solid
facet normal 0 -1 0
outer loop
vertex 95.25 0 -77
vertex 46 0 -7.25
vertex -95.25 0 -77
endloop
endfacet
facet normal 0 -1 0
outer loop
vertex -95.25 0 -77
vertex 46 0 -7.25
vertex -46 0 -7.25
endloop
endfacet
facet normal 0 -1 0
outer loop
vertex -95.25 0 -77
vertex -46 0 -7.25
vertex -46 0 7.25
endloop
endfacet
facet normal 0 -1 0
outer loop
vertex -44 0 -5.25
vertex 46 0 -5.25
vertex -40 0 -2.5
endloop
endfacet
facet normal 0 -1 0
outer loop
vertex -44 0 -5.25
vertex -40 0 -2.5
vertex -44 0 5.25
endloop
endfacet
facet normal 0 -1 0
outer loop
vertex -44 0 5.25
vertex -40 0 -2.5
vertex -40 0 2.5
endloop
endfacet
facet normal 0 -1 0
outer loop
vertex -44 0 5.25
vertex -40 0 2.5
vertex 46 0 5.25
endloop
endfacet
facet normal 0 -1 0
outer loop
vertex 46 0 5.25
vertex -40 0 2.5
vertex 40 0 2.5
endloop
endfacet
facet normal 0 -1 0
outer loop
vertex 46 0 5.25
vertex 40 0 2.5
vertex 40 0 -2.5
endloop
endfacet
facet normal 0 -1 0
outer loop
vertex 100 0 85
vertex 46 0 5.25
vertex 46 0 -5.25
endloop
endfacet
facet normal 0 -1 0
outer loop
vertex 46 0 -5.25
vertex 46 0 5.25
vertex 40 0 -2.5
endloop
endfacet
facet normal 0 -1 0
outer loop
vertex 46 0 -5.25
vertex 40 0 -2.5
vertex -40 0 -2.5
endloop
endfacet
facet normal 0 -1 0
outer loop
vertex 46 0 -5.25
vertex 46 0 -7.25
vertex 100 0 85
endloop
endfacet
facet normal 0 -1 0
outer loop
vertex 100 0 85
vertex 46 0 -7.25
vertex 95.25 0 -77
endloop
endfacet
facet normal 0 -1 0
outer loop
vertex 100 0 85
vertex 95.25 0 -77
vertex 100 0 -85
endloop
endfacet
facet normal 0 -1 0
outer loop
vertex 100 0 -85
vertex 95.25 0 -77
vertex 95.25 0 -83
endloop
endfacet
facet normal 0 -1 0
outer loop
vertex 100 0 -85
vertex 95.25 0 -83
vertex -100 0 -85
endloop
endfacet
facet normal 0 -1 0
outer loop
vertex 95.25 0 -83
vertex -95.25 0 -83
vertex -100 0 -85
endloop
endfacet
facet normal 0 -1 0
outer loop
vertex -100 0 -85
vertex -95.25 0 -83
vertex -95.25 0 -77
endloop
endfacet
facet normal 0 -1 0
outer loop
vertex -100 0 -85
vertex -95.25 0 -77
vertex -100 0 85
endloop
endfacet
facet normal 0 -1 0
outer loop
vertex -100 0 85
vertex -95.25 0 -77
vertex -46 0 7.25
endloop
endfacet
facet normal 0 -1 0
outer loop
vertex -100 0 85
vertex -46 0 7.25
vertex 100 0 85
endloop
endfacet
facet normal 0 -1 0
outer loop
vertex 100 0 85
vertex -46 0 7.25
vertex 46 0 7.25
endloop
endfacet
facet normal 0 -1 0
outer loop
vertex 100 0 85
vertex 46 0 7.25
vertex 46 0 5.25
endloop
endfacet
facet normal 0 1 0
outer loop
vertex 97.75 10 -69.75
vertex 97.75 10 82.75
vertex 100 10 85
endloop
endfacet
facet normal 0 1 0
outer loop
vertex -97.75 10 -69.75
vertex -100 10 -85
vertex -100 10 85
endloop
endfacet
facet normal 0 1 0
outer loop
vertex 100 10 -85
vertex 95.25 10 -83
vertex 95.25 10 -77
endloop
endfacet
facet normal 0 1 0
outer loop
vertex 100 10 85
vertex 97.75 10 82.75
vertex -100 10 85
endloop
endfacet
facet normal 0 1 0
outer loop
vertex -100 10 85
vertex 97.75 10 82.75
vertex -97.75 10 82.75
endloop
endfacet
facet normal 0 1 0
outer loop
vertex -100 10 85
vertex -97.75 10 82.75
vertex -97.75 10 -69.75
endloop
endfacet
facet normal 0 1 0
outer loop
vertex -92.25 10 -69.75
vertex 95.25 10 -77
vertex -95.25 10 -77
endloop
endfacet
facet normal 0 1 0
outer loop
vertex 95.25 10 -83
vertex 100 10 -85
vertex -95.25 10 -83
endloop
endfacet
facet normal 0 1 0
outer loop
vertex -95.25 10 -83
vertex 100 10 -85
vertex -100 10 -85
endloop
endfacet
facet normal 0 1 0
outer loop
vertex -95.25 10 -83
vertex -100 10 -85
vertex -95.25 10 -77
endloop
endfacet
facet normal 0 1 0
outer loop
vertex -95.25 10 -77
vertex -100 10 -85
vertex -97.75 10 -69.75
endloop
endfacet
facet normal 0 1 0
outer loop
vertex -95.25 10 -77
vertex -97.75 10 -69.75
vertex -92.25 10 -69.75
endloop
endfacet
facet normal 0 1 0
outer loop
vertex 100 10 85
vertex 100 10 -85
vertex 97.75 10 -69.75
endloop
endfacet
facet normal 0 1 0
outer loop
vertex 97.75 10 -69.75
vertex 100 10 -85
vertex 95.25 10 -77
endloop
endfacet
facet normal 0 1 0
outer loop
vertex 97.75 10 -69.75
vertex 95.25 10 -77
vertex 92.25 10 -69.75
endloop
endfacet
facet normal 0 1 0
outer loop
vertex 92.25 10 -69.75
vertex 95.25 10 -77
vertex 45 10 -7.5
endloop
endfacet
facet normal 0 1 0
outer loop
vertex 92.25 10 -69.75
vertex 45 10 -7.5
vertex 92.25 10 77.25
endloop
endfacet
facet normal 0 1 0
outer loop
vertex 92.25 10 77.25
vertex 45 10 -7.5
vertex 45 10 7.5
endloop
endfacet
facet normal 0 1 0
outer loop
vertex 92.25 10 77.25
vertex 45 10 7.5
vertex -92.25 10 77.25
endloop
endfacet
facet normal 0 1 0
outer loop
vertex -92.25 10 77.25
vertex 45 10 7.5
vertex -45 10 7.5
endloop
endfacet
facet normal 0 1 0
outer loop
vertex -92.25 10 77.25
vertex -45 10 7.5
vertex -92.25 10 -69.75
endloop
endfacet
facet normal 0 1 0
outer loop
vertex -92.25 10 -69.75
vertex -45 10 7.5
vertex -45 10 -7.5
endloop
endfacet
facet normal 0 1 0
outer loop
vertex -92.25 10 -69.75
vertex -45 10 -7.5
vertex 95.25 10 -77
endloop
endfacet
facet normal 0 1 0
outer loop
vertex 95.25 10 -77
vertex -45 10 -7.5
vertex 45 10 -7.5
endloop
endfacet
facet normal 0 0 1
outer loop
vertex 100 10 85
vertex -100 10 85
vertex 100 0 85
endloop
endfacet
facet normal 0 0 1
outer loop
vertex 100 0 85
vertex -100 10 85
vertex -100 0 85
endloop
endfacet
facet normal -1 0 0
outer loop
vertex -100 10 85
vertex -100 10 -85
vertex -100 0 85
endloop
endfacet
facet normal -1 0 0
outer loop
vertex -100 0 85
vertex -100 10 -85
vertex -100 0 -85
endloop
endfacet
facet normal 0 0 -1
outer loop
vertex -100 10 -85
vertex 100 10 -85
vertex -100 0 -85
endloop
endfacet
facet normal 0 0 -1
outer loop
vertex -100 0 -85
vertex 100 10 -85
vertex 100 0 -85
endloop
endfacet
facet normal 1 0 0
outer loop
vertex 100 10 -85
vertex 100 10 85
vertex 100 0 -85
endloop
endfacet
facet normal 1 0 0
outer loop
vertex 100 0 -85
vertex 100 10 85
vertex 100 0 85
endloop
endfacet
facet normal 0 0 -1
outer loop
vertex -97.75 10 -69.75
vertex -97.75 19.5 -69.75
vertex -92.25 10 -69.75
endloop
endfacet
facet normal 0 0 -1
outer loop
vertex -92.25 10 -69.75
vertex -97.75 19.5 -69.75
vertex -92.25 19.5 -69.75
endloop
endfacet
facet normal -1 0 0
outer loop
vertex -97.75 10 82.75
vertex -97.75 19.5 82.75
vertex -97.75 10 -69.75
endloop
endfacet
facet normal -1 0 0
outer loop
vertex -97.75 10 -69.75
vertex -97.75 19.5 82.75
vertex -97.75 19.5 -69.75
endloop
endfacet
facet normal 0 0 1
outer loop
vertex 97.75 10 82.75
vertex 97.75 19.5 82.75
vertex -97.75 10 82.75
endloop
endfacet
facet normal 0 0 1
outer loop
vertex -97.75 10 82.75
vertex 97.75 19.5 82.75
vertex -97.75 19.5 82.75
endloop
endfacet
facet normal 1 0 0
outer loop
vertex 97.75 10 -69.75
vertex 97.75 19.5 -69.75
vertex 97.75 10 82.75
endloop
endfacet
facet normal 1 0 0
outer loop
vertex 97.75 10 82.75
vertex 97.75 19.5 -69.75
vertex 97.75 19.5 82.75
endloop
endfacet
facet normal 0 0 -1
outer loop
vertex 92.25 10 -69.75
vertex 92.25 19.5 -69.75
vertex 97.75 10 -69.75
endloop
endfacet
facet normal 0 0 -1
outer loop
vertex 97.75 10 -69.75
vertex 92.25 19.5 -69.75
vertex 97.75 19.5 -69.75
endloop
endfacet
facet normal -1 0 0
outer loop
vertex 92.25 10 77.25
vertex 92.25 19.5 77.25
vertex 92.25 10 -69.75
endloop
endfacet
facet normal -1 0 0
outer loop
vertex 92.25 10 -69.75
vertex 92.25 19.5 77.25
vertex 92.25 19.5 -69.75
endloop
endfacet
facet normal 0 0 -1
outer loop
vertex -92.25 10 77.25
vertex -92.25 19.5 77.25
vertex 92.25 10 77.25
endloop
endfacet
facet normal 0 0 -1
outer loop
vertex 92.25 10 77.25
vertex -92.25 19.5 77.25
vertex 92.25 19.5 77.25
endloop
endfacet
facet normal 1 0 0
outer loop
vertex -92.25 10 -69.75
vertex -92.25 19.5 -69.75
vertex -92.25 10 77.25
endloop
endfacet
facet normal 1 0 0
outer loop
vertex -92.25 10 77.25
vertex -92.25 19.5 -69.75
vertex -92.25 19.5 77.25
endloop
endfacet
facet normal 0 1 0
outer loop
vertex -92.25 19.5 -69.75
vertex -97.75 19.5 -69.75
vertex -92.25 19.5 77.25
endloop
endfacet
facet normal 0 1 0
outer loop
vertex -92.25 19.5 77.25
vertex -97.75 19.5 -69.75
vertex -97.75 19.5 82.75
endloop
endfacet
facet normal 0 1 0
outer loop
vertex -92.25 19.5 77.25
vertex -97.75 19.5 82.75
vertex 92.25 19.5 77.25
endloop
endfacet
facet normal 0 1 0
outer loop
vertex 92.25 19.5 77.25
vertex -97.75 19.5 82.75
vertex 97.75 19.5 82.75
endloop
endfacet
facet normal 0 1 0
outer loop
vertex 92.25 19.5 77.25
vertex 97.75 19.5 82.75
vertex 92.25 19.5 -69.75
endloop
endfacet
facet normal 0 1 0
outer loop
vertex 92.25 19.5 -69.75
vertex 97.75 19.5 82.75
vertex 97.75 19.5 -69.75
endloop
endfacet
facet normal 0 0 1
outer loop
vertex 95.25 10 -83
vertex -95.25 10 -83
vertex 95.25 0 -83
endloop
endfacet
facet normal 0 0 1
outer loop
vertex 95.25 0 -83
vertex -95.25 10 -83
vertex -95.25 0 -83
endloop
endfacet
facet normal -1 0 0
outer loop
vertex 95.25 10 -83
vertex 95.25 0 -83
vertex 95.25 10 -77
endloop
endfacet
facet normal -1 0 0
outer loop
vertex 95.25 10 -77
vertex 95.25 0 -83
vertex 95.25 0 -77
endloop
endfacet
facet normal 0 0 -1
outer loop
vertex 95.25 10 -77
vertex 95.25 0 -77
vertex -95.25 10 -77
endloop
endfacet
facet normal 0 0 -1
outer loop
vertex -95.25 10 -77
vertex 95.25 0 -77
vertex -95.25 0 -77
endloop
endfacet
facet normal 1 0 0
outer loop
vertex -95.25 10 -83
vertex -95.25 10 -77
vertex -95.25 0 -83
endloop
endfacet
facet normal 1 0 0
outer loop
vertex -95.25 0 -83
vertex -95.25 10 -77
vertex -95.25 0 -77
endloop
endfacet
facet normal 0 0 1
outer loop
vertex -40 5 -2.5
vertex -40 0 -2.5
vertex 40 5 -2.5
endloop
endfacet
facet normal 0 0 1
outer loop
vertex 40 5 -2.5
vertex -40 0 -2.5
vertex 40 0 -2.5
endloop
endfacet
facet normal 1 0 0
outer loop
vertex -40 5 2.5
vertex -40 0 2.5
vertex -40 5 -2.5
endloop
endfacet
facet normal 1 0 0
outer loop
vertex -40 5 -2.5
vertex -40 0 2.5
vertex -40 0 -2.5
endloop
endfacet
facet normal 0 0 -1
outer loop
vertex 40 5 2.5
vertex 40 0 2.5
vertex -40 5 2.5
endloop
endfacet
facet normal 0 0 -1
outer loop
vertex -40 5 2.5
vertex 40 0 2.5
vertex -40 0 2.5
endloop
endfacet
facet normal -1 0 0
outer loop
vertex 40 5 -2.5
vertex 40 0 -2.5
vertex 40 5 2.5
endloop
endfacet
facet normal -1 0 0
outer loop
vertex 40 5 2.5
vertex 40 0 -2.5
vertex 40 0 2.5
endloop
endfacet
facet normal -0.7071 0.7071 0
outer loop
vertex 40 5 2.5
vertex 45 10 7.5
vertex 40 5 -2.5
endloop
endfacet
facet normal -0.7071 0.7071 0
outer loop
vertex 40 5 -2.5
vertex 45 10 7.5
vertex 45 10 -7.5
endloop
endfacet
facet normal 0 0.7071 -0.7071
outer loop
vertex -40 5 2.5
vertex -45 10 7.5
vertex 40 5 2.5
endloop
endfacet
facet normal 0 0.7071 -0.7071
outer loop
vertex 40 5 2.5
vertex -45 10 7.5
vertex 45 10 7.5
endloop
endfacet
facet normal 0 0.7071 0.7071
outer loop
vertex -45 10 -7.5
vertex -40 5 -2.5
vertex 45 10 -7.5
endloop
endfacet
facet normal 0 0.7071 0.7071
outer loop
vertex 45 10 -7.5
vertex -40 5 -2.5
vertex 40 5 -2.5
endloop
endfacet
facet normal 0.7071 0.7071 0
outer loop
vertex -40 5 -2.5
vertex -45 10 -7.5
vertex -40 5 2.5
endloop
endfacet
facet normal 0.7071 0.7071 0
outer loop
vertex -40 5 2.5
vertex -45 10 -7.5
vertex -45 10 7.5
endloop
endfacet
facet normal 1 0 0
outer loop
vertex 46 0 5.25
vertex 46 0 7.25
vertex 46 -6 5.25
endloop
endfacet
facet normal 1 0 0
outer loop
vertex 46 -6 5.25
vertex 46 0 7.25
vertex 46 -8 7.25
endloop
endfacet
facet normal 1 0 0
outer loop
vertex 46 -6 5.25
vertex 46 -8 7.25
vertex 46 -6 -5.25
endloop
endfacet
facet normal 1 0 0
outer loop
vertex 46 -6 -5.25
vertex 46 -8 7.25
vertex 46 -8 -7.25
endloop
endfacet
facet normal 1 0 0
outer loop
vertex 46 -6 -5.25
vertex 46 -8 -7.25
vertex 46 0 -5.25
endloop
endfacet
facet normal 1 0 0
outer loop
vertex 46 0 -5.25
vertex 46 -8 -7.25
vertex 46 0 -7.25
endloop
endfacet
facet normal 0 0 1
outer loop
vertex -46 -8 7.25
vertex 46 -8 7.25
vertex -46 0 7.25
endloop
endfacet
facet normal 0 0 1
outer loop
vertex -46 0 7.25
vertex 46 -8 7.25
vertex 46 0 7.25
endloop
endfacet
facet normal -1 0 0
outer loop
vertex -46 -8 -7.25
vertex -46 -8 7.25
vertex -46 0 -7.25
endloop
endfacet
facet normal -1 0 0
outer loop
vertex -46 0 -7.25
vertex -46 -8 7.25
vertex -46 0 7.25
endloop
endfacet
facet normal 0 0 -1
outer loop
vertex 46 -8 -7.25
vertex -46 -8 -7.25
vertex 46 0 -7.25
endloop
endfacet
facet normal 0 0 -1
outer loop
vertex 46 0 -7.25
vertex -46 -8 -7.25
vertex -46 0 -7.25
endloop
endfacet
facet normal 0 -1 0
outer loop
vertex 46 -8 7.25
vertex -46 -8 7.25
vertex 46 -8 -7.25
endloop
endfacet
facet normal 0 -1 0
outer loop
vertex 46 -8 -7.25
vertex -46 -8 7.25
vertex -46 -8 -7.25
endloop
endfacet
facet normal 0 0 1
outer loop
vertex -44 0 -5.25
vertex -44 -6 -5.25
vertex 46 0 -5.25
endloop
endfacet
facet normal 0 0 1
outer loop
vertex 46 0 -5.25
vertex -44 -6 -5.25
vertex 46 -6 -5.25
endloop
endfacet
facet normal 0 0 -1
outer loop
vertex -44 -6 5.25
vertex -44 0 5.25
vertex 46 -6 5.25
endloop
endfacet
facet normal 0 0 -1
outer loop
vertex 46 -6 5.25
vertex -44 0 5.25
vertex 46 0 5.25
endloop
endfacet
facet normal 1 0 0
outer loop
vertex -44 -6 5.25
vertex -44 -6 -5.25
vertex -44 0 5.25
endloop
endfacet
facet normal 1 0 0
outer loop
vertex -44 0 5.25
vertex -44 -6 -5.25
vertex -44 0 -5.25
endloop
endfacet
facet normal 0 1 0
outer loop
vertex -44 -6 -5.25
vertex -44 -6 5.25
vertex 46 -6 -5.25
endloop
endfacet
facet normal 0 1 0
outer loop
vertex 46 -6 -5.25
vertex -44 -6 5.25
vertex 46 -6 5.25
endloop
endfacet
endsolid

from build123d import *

# Parameters (mm, degrees)
CROQUIS1_W              = 200
CROQUIS1_H              = 170
SALIENTE_EXTRUIR1_DEPTH = 10
SALIENTE_EXTRUIR2_DEPTH = 19.5
CROQUIS2_W              = 169.5
CROQUIS2_H              = 6
CROQUIS2_W_2            = 5.25
CORTAR_EXTRUIR1_DEPTH   = 20
CROQUIS3_W              = 80
CROQUIS3_H              = 5
CORTAR_EXTRUIR2_DEPTH   = 10
CHAFL_N1_SIZE           = 5
CROQUIS4_W              = 92
CROQUIS4_H              = 14.5
CROQUIS4_W_2            = 86
CROQUIS4_H_2            = 8.5
SALIENTE_EXTRUIR3_DEPTH = 6
CROQUIS5_W              = 92
CROQUIS5_H              = 14.5
SALIENTE_EXTRUIR4_DEPTH = 2
CORTAR_EXTRUIR3_DEPTH   = 90


with BuildPart() as part:
    # Croquis1 → Saliente-Extruir1 (new body)
    with BuildSketch(Plane(origin=(0, 0, 0), x_dir=(1, 0, 0), z_dir=(0, 1, 0))):
        Rectangle(CROQUIS1_W, CROQUIS1_H)
    extrude(amount=SALIENTE_EXTRUIR1_DEPTH)

    # Croquis1<4> → Saliente-Extruir2 (add)
    with BuildSketch(Plane(origin=(0, 0, 0), x_dir=(1, 0, 0), z_dir=(0, 1, 0))):
        Polygon((97.75, 69.75), (97.75, -82.75), (-97.75, -82.75), (-97.75, 69.75), (-92.25, 69.75), (-92.25, -77.25), (92.25, -77.25), (92.25, 69.75), align=None)
    extrude(amount=SALIENTE_EXTRUIR2_DEPTH)

    # Croquis2 → Cortar-Extruir1 (cut)
    with BuildSketch(Plane(origin=(0, 10, 0), x_dir=(1, 0, 0), z_dir=(0, 1, 0))):
        with Locations((0, 80)):
            Rectangle(CROQUIS2_W, CROQUIS2_H)
        with Locations((-87.375, 80)):
            Rectangle(CROQUIS2_W_2, CROQUIS2_H)
        with Locations((-92.625, 80)):
            Rectangle(CROQUIS2_W_2, CROQUIS2_H)
        with Locations((87.375, 80)):
            Rectangle(CROQUIS2_W_2, CROQUIS2_H)
        with Locations((92.625, 80)):
            Rectangle(CROQUIS2_W_2, CROQUIS2_H)
    extrude(amount=-CORTAR_EXTRUIR1_DEPTH, mode=Mode.SUBTRACT)

    # Croquis3 → Cortar-Extruir2 (cut)
    with BuildSketch(Plane.XZ):
        Rectangle(CROQUIS3_W, CROQUIS3_H)
    extrude(amount=-CORTAR_EXTRUIR2_DEPTH, mode=Mode.SUBTRACT)

    # Chaflán1
    chafl_n1_edges = [part.edges().sort_by_distance(p)[0] for p in [
        (0, 10, -2.5),
        (-40, 10, 0),
        (0, 10, 2.5),
        (40, 10, 0),
    ]]
    chamfer(chafl_n1_edges, length=CHAFL_N1_SIZE)

    # Croquis4 → Saliente-Extruir3 (add)
    with BuildSketch(Plane.XZ):
        Rectangle(CROQUIS4_W, CROQUIS4_H)
        Rectangle(CROQUIS4_W_2, CROQUIS4_H_2, mode=Mode.SUBTRACT)
    extrude(amount=SALIENTE_EXTRUIR3_DEPTH)

    # Croquis5 → Saliente-Extruir4 (add)
    with BuildSketch(Plane.XZ.offset(6)):
        Rectangle(CROQUIS5_W, CROQUIS5_H)
    extrude(amount=SALIENTE_EXTRUIR4_DEPTH)

    # Croquis6 → Cortar-Extruir3 (cut)
    with BuildSketch(Plane(origin=(46, 0, 0), x_dir=(0, 0, -1), z_dir=(1, 0, 0))):
        Polygon((5.25, 0), (5.25, -6), (-5.25, -6), (-5.25, 0), (0, 0), align=None)
    extrude(amount=-CORTAR_EXTRUIR3_DEPTH, mode=Mode.SUBTRACT)


solid = part.part
